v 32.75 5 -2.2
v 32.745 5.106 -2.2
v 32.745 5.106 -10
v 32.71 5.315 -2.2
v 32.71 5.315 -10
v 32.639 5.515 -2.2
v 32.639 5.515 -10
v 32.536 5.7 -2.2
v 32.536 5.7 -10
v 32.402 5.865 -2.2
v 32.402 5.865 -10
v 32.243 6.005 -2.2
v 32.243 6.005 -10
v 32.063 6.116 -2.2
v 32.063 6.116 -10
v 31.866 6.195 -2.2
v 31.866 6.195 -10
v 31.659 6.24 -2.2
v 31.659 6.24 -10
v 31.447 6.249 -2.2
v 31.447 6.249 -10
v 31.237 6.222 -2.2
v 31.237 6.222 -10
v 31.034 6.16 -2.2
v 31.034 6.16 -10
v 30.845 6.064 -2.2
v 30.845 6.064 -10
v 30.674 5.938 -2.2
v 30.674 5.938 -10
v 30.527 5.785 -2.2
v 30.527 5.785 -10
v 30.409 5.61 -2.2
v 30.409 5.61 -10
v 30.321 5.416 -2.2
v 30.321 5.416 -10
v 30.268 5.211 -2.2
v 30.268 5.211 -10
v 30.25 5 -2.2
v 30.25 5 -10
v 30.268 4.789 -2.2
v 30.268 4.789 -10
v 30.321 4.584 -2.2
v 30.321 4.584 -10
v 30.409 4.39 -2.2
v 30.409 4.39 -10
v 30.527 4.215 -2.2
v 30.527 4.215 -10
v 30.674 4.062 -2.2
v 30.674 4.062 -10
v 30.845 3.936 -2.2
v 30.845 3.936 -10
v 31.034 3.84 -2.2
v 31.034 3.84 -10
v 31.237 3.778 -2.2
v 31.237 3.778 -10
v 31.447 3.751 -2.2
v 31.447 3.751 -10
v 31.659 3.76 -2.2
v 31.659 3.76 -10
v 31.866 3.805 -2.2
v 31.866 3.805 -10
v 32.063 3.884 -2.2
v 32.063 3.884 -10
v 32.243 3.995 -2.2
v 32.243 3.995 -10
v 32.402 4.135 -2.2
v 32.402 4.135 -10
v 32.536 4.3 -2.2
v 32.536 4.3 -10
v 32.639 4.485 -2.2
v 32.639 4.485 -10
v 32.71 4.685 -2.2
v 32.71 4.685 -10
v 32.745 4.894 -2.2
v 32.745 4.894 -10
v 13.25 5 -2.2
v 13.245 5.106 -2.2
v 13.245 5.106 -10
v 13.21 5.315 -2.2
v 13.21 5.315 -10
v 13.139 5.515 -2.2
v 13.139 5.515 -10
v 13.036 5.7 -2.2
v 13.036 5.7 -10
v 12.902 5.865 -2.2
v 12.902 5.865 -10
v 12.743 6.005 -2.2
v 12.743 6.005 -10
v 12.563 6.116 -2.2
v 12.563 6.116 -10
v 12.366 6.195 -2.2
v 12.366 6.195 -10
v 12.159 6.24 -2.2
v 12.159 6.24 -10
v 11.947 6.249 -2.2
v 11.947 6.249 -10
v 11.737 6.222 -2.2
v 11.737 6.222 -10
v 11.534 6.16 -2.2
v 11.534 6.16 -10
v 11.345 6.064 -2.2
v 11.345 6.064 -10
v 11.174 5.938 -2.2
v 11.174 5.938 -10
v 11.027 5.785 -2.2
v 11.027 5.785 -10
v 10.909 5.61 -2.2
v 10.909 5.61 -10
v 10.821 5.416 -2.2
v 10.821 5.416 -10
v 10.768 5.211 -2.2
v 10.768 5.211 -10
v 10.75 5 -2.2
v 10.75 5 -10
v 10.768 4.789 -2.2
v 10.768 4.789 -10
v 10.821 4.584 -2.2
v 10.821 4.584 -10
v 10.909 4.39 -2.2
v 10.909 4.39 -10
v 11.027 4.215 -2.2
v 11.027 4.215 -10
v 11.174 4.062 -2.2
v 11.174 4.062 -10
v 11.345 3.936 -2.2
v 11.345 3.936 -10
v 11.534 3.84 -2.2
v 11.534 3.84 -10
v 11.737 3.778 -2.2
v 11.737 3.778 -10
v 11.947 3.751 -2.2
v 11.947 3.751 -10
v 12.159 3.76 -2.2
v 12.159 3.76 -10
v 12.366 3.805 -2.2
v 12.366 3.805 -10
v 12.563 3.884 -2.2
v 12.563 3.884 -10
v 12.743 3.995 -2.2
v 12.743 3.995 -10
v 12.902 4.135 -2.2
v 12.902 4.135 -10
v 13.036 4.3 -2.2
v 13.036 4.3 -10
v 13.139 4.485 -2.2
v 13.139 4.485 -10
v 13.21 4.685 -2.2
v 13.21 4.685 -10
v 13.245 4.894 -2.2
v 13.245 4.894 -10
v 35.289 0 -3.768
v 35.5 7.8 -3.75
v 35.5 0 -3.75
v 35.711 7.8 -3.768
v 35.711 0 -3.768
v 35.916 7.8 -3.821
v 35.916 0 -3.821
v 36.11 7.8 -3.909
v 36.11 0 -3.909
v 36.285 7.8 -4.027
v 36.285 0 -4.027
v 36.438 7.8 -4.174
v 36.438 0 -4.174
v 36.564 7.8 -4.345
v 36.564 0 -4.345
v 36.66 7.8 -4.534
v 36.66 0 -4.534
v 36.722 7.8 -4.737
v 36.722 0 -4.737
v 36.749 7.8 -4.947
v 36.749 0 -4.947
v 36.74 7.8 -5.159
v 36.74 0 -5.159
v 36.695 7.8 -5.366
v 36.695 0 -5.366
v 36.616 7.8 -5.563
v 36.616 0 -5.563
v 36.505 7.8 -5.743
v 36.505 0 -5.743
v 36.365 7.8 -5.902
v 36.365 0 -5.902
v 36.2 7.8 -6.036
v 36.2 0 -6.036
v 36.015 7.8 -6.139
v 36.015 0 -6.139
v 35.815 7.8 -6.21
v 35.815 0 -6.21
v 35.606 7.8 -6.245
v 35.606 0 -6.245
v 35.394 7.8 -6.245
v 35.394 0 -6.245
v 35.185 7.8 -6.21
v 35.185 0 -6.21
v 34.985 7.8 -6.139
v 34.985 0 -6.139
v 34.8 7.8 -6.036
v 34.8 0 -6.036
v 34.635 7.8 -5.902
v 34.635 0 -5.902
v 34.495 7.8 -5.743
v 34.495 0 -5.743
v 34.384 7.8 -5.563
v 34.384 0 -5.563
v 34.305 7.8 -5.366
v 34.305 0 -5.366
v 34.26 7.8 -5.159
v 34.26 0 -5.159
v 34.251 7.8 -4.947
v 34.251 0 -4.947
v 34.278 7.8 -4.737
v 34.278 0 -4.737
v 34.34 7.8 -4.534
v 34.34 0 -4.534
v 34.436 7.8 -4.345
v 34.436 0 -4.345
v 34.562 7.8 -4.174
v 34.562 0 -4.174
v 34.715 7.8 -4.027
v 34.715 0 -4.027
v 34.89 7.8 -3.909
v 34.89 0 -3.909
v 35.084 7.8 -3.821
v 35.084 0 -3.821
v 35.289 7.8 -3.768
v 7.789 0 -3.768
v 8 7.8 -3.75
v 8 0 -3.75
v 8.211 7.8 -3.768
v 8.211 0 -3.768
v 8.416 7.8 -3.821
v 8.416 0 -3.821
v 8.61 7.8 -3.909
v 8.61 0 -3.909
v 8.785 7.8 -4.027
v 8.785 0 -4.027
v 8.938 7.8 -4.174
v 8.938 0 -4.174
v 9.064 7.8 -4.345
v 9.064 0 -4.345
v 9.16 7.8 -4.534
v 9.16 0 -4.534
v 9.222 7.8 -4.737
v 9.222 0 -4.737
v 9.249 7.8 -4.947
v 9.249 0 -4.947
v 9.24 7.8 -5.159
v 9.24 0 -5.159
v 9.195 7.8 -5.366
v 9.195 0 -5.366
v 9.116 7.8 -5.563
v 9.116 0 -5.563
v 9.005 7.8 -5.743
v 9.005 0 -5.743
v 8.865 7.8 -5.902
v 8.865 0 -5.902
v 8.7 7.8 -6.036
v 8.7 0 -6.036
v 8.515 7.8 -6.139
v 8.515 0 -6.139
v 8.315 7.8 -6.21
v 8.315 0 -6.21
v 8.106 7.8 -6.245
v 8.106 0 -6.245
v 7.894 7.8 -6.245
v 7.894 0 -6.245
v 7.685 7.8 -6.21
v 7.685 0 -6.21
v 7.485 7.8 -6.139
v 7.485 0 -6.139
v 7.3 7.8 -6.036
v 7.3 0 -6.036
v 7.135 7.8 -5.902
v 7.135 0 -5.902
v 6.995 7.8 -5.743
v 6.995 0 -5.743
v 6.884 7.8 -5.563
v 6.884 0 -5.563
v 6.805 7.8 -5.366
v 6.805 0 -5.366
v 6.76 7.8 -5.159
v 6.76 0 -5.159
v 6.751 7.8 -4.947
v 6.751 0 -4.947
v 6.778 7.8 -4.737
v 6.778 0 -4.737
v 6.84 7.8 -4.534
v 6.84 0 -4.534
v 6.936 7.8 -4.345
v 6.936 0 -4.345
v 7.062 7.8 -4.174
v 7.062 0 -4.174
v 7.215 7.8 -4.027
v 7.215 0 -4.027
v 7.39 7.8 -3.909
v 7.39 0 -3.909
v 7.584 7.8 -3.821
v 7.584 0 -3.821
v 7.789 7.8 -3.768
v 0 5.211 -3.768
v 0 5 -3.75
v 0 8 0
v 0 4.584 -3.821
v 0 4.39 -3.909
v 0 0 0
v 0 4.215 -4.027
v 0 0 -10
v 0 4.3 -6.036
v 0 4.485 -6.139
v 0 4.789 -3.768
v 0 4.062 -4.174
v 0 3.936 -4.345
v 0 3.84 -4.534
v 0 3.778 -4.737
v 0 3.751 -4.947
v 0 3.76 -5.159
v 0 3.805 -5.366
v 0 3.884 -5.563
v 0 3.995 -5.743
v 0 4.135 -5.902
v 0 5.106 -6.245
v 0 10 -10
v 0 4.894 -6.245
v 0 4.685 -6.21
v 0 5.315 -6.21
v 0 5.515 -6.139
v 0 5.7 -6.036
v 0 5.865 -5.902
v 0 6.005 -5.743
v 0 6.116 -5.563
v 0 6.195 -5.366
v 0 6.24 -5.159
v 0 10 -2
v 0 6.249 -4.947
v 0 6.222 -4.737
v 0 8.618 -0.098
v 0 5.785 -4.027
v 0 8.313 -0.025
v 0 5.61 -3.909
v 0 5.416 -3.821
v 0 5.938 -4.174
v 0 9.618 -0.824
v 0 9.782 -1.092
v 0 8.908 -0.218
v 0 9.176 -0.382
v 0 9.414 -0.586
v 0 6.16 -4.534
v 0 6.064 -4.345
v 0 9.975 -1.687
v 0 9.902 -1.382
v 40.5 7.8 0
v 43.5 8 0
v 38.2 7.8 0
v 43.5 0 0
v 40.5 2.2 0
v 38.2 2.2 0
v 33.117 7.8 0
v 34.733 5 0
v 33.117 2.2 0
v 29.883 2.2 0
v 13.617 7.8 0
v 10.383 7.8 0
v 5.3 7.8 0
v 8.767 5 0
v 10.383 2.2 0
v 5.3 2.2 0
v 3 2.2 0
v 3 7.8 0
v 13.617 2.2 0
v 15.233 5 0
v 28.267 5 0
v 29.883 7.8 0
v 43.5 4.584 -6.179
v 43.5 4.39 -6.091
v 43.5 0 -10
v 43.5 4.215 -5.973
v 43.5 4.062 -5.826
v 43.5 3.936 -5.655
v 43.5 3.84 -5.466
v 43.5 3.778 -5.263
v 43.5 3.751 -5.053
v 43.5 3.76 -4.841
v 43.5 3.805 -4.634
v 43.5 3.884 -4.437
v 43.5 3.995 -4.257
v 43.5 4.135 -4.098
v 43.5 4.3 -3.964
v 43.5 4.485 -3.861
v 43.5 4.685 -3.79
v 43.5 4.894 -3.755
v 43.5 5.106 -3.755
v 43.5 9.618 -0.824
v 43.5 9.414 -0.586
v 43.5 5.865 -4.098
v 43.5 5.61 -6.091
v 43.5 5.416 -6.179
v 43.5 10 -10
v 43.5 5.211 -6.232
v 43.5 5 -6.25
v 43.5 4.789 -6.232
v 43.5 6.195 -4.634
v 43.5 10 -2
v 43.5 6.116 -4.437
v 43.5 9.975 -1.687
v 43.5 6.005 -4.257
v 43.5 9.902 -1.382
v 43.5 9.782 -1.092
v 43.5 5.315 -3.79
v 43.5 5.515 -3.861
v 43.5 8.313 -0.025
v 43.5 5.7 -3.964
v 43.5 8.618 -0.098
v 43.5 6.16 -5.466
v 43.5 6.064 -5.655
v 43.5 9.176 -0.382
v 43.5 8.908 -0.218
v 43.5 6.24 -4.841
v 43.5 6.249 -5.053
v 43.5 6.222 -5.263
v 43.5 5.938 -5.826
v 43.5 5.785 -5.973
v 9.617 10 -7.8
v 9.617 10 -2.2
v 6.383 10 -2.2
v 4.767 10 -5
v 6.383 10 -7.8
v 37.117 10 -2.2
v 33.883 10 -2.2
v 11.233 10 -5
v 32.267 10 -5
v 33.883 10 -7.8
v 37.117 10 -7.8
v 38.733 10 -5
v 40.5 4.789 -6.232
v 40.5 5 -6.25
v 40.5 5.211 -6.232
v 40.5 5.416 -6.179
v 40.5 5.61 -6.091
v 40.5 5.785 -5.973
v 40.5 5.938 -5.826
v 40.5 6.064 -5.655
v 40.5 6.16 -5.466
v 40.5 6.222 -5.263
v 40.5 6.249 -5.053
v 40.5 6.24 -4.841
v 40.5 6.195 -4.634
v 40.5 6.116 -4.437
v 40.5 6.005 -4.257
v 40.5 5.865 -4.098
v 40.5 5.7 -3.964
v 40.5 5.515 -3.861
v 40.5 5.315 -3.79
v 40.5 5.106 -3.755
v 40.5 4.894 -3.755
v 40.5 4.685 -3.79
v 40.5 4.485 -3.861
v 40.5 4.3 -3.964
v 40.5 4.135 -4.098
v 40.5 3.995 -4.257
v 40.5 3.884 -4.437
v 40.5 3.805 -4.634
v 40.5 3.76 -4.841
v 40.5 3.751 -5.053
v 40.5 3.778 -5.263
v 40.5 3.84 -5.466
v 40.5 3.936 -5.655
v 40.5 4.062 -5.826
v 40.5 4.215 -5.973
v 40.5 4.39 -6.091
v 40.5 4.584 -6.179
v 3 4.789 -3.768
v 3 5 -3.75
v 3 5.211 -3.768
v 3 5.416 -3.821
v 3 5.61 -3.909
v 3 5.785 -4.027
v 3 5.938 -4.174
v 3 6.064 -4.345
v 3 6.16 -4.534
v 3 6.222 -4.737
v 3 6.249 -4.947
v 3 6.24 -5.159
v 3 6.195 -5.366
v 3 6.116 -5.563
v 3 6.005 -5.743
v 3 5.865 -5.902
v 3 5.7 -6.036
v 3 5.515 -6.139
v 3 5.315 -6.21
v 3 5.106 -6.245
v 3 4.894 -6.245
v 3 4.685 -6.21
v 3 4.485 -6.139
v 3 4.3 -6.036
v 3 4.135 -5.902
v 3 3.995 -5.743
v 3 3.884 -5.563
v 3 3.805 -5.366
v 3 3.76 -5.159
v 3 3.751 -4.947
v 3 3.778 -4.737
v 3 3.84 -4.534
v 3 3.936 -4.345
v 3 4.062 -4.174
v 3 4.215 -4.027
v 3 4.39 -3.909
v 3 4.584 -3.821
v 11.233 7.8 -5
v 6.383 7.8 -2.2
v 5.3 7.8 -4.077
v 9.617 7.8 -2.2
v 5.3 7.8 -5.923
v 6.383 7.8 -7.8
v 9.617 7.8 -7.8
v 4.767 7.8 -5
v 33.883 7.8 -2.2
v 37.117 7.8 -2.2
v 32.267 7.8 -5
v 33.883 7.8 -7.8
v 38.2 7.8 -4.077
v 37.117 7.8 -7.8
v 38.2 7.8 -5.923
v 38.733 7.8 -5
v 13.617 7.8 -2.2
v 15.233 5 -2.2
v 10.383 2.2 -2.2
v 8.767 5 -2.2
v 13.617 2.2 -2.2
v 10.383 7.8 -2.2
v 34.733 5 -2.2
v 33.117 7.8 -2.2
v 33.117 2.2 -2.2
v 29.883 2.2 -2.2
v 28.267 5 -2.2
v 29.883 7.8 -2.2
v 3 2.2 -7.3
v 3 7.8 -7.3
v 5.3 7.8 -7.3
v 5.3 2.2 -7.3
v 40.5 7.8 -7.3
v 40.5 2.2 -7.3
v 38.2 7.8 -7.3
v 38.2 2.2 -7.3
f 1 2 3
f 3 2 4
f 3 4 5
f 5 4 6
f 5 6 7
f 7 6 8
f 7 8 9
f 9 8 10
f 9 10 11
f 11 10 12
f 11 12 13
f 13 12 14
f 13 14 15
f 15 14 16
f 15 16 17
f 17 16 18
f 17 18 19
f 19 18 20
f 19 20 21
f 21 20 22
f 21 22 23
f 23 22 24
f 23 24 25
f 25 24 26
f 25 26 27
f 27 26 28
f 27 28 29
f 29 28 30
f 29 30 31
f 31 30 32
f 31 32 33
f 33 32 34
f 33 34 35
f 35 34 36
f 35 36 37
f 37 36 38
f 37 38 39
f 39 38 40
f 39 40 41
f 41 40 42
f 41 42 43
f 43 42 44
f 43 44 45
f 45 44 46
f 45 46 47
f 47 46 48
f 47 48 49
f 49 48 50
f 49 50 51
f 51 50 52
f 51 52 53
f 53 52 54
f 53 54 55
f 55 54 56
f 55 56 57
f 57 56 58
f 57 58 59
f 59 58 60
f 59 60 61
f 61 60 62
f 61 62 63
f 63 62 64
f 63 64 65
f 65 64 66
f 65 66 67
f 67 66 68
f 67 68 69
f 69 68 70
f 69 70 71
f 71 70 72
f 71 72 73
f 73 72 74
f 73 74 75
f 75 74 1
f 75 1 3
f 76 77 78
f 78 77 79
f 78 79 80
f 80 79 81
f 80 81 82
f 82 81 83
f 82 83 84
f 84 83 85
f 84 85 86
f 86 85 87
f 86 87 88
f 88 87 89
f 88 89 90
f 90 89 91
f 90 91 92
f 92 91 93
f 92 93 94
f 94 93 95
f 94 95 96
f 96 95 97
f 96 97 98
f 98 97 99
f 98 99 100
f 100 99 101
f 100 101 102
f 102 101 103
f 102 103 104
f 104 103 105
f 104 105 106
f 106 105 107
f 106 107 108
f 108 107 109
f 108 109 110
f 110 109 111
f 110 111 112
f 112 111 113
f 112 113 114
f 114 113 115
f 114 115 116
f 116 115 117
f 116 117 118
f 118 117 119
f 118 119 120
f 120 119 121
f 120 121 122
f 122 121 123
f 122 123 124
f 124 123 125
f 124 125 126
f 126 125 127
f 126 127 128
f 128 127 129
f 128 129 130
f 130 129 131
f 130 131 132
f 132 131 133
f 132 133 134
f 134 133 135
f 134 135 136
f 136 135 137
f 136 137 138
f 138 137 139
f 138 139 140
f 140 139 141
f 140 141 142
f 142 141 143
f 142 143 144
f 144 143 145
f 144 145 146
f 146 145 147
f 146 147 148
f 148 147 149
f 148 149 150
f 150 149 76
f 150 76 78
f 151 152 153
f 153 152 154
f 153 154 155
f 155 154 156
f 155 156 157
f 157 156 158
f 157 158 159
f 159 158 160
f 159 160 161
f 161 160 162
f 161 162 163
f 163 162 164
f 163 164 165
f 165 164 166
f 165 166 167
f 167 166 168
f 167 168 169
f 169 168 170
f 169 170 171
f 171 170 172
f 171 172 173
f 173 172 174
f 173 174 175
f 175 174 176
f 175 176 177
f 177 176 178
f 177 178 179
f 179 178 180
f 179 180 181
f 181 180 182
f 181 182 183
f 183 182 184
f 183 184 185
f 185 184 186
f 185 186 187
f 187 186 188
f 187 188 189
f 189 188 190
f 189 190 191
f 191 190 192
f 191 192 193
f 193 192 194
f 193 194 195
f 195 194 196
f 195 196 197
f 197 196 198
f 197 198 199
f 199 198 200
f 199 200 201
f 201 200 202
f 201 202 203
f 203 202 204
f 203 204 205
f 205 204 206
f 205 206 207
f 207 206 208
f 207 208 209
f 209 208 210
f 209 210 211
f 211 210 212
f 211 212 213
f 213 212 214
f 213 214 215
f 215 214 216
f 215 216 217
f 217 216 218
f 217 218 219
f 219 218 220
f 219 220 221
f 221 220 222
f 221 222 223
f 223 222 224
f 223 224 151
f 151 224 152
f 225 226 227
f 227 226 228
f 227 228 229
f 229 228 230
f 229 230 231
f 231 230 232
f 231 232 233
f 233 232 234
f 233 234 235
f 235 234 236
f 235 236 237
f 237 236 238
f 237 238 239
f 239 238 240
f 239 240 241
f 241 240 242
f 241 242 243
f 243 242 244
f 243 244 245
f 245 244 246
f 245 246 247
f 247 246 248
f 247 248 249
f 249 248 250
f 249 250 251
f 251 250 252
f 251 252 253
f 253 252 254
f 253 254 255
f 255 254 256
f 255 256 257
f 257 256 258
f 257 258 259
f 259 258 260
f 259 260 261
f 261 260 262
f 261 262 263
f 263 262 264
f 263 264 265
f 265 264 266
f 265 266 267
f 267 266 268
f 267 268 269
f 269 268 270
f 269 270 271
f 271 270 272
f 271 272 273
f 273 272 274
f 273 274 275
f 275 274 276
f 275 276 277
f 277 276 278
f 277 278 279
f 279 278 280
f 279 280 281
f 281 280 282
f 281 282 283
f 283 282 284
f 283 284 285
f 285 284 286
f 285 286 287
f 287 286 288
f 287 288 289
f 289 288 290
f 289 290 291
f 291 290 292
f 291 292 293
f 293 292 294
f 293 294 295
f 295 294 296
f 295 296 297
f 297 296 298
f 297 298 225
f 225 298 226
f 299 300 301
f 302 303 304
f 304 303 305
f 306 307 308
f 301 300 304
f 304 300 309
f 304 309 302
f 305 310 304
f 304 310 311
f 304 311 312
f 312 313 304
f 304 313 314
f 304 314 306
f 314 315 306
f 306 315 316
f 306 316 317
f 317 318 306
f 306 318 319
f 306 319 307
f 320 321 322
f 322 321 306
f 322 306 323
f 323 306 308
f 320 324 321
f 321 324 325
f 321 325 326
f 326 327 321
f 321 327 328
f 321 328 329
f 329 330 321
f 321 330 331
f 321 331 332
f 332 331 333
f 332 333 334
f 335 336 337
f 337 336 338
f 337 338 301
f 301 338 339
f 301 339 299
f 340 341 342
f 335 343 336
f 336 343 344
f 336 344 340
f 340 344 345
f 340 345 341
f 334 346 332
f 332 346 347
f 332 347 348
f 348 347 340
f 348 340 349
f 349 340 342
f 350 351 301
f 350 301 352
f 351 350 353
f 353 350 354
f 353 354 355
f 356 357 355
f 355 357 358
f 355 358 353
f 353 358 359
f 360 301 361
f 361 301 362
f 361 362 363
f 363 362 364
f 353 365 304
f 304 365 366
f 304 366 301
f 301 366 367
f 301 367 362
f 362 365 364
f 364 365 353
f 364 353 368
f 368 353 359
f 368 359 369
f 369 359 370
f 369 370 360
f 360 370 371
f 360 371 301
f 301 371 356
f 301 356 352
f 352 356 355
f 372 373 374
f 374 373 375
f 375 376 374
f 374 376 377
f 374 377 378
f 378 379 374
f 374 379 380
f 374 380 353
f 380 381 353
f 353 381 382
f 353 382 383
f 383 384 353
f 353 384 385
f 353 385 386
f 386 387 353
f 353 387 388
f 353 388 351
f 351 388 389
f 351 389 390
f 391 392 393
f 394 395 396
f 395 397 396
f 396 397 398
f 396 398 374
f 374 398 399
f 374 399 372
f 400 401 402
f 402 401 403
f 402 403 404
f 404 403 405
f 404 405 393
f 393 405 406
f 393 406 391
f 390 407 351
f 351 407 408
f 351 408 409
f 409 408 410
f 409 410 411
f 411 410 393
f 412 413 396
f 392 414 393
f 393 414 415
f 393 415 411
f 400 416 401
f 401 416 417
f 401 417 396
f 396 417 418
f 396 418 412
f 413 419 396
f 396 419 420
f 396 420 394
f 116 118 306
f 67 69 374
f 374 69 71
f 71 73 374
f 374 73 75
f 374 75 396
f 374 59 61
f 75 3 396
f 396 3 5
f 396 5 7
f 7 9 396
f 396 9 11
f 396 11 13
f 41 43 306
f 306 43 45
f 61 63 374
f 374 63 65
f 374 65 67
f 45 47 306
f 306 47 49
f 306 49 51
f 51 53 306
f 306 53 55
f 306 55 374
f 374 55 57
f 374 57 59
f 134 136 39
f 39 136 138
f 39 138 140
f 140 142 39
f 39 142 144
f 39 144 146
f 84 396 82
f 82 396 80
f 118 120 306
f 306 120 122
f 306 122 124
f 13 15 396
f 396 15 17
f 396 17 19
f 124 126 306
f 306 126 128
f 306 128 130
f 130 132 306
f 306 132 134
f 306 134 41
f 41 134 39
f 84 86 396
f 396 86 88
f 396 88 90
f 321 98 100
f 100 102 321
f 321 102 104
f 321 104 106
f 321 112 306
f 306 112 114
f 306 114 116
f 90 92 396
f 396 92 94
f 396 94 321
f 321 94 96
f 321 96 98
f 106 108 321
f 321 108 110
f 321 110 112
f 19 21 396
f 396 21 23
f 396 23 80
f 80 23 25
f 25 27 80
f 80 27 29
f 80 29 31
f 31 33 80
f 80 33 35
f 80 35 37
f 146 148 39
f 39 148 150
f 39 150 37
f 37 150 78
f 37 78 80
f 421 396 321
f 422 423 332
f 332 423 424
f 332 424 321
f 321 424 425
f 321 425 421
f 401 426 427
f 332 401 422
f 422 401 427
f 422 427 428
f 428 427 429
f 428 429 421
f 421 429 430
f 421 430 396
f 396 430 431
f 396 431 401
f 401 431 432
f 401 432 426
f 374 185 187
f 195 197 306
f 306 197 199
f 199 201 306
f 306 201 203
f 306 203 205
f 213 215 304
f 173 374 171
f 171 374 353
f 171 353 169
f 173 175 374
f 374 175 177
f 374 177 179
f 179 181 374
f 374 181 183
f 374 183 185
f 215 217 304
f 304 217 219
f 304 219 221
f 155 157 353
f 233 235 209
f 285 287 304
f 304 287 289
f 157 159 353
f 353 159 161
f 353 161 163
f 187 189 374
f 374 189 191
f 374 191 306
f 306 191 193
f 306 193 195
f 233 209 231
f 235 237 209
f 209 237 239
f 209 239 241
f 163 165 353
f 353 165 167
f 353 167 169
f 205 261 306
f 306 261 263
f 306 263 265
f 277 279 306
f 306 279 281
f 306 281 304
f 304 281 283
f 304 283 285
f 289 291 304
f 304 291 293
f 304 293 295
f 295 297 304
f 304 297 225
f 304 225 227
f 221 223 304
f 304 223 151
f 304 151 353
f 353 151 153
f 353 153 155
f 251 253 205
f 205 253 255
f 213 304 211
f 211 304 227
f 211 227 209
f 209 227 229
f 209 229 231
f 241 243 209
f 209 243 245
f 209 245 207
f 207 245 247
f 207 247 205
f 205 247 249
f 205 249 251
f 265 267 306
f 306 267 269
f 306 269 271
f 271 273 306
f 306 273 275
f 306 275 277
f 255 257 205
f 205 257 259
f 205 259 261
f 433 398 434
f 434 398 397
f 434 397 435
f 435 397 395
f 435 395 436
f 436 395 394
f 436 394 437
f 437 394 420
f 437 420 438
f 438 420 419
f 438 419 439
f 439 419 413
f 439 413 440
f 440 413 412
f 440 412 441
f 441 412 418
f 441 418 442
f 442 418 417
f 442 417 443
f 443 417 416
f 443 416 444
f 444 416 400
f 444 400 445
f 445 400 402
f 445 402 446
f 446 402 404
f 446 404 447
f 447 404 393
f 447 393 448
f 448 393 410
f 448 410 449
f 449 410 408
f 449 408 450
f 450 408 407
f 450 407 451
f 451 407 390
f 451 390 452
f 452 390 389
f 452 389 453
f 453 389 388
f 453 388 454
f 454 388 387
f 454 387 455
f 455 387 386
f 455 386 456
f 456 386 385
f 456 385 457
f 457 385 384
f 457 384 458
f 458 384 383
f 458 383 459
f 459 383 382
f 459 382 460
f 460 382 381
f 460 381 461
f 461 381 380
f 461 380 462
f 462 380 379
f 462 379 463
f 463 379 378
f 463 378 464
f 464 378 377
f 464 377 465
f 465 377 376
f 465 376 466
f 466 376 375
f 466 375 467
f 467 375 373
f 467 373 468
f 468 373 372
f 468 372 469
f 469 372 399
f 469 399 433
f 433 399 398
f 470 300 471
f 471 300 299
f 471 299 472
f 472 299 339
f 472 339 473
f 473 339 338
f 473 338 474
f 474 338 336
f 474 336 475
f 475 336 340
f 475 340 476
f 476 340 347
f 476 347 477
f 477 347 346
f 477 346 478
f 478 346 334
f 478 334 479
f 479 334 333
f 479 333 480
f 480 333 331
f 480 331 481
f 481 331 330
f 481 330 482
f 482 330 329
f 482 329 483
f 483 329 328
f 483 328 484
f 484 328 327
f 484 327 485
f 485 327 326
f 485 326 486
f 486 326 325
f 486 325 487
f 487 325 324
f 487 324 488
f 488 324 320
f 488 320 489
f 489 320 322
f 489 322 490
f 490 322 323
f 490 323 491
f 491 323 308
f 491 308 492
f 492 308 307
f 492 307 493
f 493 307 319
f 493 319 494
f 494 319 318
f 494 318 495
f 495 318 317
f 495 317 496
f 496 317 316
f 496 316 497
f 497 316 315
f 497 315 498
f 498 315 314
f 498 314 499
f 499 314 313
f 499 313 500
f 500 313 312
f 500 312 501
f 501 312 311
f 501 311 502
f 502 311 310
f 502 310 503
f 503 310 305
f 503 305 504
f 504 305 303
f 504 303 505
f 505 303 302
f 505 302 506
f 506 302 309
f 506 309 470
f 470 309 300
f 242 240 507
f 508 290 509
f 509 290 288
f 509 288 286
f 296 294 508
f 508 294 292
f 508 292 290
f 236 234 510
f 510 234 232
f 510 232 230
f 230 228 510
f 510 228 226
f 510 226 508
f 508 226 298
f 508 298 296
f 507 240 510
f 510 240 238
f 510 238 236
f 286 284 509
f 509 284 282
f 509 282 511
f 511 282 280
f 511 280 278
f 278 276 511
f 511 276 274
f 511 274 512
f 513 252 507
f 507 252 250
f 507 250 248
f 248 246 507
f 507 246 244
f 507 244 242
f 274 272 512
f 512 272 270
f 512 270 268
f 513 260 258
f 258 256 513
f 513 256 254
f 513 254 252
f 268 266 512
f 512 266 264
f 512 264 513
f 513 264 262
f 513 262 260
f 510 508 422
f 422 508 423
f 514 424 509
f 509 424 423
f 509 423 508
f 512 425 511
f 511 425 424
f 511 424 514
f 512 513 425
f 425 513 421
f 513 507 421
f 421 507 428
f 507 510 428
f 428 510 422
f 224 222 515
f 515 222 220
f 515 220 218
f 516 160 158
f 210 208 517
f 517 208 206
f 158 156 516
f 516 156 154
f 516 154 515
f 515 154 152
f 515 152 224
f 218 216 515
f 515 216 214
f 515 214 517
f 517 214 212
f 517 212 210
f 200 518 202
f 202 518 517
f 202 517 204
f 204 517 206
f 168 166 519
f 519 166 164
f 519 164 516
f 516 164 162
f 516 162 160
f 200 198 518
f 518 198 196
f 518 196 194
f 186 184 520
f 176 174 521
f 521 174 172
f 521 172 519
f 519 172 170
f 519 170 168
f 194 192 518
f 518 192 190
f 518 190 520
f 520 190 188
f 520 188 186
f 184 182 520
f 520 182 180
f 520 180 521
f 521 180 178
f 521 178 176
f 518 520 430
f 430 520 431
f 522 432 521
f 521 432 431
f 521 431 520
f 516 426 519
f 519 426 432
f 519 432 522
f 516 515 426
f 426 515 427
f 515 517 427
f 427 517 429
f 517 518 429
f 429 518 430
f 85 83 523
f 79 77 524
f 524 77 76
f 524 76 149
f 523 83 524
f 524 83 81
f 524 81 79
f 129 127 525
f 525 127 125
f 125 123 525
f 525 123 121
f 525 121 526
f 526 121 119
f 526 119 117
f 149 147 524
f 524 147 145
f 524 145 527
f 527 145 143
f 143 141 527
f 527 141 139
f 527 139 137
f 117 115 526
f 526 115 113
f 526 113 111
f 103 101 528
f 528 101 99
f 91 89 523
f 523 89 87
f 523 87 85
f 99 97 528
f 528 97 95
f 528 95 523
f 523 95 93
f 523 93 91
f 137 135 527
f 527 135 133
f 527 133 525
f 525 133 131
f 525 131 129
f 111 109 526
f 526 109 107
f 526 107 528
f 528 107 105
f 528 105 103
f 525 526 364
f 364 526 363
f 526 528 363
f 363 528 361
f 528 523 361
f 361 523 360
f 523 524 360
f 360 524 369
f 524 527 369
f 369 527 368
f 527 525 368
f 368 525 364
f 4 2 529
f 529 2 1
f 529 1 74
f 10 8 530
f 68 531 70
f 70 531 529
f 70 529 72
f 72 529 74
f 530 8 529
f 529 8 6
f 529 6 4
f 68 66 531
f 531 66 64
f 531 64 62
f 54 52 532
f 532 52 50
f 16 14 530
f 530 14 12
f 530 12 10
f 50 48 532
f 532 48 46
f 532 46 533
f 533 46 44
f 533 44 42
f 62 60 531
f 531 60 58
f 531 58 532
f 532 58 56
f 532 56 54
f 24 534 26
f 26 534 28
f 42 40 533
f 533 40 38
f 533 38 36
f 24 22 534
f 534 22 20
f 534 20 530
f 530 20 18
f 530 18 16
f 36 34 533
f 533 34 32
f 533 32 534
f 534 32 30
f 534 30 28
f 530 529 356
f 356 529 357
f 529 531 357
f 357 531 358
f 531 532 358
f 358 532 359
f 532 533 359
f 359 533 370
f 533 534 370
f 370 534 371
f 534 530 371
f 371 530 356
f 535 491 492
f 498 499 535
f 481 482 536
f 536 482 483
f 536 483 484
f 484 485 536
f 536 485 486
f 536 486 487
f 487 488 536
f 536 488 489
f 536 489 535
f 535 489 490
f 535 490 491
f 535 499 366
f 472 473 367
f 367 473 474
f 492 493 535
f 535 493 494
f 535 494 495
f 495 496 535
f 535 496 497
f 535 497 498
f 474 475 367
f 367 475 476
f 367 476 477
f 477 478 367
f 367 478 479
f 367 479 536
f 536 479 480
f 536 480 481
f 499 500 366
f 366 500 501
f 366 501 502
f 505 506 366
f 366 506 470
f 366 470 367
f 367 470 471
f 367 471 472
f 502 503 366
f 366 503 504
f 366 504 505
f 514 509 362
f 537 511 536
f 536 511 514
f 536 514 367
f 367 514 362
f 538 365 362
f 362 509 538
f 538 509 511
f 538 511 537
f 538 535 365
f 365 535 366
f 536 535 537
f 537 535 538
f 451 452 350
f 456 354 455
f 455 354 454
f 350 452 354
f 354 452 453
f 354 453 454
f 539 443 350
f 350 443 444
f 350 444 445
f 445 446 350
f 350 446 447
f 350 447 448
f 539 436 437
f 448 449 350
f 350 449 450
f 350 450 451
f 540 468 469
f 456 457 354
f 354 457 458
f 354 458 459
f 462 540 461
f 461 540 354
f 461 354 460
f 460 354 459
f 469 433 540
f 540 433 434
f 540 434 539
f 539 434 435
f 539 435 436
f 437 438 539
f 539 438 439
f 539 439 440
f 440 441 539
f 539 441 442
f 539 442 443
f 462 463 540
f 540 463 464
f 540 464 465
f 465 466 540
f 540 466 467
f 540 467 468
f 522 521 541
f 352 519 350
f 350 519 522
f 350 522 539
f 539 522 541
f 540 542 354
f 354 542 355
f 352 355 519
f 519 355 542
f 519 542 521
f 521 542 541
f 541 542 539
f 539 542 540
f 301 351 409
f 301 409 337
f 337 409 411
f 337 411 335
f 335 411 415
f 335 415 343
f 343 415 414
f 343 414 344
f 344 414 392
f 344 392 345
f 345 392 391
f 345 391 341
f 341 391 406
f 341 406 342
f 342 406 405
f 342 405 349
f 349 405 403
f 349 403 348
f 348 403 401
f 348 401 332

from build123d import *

# Parameters (mm, degrees)
SKETCH1_W           = 43.5
SKETCH1_H           = 10
BOSS_EXTRUDE1_DEPTH = 10
SKETCH2_R           = 1.25
CUT_EXTRUDE1_DEPTH  = 10
SKETCH3_R           = 1.25
CUT_EXTRUDE2_DEPTH  = 10
SKETCH4_R           = 1.25
CUT_EXTRUDE3_DEPTH  = 4
CUT_EXTRUDE4_START  = -4
SKETCH5_R           = 1.25
CUT_EXTRUDE4_DEPTH  = 4
CUT_EXTRUDE5_DEPTH  = 2.2
CUT_EXTRUDE6_DEPTH  = 2.2
CUT_EXTRUDE7_DEPTH  = 2.2
CUT_EXTRUDE8_DEPTH  = 2.2
SKETCH11_W          = 2.3
SKETCH11_H          = 5.6
CUT_EXTRUDE9_DEPTH  = 7.3
FILLET1_R           = 2


with BuildPart() as part:
    # Sketch1 → Boss-Extrude1 (new body)
    with BuildSketch(Plane(origin=(0, 0, 0), x_dir=(1, 0, 0), z_dir=(0, 1, 0))):
        with Locations((21.75, 5)):
            Rectangle(SKETCH1_W, SKETCH1_H)
    extrude(amount=BOSS_EXTRUDE1_DEPTH)

    # Sketch2 → Cut-Extrude1 (cut)
    with BuildSketch(Plane(origin=(0, 10, 0), x_dir=(1, 0, 0), z_dir=(0, 1, 0))):
        with Locations(Location((8, 5, 0), (0, 0, 270))):
            Circle(SKETCH2_R)
        with Locations(Location((35.5, 5, 0), (0, 0, 270))):
            Circle(SKETCH2_R)
    extrude(amount=-CUT_EXTRUDE1_DEPTH, mode=Mode.SUBTRACT)

    # Sketch3 → Cut-Extrude2 (cut)
    with BuildSketch(Plane(origin=(0, 0, -10), x_dir=(-1, 0, 0), z_dir=(0, 0, -1))):
        with Locations((-31.5, 5)):
            Circle(SKETCH3_R)
        with Locations((-12, 5)):
            Circle(SKETCH3_R)
    extrude(amount=-CUT_EXTRUDE2_DEPTH, mode=Mode.SUBTRACT)

    # Sketch4 → Cut-Extrude3 (cut)
    with BuildSketch(Plane(origin=(43.5, 0, 0), x_dir=(0, 0, -1), z_dir=(1, 0, 0))):
        with Locations((5, 5)):
            Circle(SKETCH4_R)
    extrude(amount=-CUT_EXTRUDE3_DEPTH, mode=Mode.SUBTRACT)

    # Sketch5 → Cut-Extrude4 (cut)
    with BuildSketch(Plane.ZY.offset(CUT_EXTRUDE4_START)):
        with Locations(Location((-5, 5, 0), (0, 0, 180))):
            Circle(SKETCH5_R)
    extrude(amount=CUT_EXTRUDE4_DEPTH, mode=Mode.SUBTRACT)

    # Sketch6 → Cut-Extrude5 (cut)
    with BuildSketch(Plane(origin=(0, 10, 0), x_dir=(1, 0, 0), z_dir=(0, 1, 0))):
        Polygon((9.616580754, 2.2), (11.233161507, 5), (9.616580754, 7.8), (6.383419246, 7.8), (4.766838493, 5), (6.383419246, 2.2), align=None)
    extrude(amount=-CUT_EXTRUDE5_DEPTH, mode=Mode.SUBTRACT)

    # Sketch7 → Cut-Extrude6 (cut)
    with BuildSketch(Plane(origin=(0, 10, 0), x_dir=(1, 0, 0), z_dir=(0, 1, 0))):
        Polygon((33.883419246, 7.8), (32.266838493, 5), (33.883419246, 2.2), (37.116580754, 2.2), (38.733161507, 5), (37.116580754, 7.8), align=None)
    extrude(amount=-CUT_EXTRUDE6_DEPTH, mode=Mode.SUBTRACT)

    # Sketch8 → Cut-Extrude7 (cut)
    with BuildSketch(Plane.XY):
        Polygon((10.383419246, 2.2), (13.616580754, 2.2), (15.233161507, 5), (13.616580754, 7.8), (10.383419246, 7.8), (8.766838493, 5), align=None)
    extrude(amount=-CUT_EXTRUDE7_DEPTH, mode=Mode.SUBTRACT)

    # Sketch9 → Cut-Extrude8 (cut)
    with BuildSketch(Plane.XY):
        Polygon((33.116580754, 7.8), (29.883419246, 7.8), (28.266838493, 5), (29.883419246, 2.2), (33.116580754, 2.2), (34.733161507, 5), align=None)
    extrude(amount=-CUT_EXTRUDE8_DEPTH, mode=Mode.SUBTRACT)

    # Sketch11 → Cut-Extrude9 (cut)
    with BuildSketch(Plane.XY):
        with Locations((4.15, 5)):
            Rectangle(SKETCH11_W, SKETCH11_H)
        with Locations((39.35, 5)):
            Rectangle(SKETCH11_W, SKETCH11_H)
    extrude(amount=-CUT_EXTRUDE9_DEPTH, mode=Mode.SUBTRACT)

    # Fillet1
    fillet1_edges = [part.edges().sort_by_distance(p)[0] for p in [
        (21.75, 10, 0),
    ]]
    fillet(fillet1_edges, radius=FILLET1_R)


solid = part.part
